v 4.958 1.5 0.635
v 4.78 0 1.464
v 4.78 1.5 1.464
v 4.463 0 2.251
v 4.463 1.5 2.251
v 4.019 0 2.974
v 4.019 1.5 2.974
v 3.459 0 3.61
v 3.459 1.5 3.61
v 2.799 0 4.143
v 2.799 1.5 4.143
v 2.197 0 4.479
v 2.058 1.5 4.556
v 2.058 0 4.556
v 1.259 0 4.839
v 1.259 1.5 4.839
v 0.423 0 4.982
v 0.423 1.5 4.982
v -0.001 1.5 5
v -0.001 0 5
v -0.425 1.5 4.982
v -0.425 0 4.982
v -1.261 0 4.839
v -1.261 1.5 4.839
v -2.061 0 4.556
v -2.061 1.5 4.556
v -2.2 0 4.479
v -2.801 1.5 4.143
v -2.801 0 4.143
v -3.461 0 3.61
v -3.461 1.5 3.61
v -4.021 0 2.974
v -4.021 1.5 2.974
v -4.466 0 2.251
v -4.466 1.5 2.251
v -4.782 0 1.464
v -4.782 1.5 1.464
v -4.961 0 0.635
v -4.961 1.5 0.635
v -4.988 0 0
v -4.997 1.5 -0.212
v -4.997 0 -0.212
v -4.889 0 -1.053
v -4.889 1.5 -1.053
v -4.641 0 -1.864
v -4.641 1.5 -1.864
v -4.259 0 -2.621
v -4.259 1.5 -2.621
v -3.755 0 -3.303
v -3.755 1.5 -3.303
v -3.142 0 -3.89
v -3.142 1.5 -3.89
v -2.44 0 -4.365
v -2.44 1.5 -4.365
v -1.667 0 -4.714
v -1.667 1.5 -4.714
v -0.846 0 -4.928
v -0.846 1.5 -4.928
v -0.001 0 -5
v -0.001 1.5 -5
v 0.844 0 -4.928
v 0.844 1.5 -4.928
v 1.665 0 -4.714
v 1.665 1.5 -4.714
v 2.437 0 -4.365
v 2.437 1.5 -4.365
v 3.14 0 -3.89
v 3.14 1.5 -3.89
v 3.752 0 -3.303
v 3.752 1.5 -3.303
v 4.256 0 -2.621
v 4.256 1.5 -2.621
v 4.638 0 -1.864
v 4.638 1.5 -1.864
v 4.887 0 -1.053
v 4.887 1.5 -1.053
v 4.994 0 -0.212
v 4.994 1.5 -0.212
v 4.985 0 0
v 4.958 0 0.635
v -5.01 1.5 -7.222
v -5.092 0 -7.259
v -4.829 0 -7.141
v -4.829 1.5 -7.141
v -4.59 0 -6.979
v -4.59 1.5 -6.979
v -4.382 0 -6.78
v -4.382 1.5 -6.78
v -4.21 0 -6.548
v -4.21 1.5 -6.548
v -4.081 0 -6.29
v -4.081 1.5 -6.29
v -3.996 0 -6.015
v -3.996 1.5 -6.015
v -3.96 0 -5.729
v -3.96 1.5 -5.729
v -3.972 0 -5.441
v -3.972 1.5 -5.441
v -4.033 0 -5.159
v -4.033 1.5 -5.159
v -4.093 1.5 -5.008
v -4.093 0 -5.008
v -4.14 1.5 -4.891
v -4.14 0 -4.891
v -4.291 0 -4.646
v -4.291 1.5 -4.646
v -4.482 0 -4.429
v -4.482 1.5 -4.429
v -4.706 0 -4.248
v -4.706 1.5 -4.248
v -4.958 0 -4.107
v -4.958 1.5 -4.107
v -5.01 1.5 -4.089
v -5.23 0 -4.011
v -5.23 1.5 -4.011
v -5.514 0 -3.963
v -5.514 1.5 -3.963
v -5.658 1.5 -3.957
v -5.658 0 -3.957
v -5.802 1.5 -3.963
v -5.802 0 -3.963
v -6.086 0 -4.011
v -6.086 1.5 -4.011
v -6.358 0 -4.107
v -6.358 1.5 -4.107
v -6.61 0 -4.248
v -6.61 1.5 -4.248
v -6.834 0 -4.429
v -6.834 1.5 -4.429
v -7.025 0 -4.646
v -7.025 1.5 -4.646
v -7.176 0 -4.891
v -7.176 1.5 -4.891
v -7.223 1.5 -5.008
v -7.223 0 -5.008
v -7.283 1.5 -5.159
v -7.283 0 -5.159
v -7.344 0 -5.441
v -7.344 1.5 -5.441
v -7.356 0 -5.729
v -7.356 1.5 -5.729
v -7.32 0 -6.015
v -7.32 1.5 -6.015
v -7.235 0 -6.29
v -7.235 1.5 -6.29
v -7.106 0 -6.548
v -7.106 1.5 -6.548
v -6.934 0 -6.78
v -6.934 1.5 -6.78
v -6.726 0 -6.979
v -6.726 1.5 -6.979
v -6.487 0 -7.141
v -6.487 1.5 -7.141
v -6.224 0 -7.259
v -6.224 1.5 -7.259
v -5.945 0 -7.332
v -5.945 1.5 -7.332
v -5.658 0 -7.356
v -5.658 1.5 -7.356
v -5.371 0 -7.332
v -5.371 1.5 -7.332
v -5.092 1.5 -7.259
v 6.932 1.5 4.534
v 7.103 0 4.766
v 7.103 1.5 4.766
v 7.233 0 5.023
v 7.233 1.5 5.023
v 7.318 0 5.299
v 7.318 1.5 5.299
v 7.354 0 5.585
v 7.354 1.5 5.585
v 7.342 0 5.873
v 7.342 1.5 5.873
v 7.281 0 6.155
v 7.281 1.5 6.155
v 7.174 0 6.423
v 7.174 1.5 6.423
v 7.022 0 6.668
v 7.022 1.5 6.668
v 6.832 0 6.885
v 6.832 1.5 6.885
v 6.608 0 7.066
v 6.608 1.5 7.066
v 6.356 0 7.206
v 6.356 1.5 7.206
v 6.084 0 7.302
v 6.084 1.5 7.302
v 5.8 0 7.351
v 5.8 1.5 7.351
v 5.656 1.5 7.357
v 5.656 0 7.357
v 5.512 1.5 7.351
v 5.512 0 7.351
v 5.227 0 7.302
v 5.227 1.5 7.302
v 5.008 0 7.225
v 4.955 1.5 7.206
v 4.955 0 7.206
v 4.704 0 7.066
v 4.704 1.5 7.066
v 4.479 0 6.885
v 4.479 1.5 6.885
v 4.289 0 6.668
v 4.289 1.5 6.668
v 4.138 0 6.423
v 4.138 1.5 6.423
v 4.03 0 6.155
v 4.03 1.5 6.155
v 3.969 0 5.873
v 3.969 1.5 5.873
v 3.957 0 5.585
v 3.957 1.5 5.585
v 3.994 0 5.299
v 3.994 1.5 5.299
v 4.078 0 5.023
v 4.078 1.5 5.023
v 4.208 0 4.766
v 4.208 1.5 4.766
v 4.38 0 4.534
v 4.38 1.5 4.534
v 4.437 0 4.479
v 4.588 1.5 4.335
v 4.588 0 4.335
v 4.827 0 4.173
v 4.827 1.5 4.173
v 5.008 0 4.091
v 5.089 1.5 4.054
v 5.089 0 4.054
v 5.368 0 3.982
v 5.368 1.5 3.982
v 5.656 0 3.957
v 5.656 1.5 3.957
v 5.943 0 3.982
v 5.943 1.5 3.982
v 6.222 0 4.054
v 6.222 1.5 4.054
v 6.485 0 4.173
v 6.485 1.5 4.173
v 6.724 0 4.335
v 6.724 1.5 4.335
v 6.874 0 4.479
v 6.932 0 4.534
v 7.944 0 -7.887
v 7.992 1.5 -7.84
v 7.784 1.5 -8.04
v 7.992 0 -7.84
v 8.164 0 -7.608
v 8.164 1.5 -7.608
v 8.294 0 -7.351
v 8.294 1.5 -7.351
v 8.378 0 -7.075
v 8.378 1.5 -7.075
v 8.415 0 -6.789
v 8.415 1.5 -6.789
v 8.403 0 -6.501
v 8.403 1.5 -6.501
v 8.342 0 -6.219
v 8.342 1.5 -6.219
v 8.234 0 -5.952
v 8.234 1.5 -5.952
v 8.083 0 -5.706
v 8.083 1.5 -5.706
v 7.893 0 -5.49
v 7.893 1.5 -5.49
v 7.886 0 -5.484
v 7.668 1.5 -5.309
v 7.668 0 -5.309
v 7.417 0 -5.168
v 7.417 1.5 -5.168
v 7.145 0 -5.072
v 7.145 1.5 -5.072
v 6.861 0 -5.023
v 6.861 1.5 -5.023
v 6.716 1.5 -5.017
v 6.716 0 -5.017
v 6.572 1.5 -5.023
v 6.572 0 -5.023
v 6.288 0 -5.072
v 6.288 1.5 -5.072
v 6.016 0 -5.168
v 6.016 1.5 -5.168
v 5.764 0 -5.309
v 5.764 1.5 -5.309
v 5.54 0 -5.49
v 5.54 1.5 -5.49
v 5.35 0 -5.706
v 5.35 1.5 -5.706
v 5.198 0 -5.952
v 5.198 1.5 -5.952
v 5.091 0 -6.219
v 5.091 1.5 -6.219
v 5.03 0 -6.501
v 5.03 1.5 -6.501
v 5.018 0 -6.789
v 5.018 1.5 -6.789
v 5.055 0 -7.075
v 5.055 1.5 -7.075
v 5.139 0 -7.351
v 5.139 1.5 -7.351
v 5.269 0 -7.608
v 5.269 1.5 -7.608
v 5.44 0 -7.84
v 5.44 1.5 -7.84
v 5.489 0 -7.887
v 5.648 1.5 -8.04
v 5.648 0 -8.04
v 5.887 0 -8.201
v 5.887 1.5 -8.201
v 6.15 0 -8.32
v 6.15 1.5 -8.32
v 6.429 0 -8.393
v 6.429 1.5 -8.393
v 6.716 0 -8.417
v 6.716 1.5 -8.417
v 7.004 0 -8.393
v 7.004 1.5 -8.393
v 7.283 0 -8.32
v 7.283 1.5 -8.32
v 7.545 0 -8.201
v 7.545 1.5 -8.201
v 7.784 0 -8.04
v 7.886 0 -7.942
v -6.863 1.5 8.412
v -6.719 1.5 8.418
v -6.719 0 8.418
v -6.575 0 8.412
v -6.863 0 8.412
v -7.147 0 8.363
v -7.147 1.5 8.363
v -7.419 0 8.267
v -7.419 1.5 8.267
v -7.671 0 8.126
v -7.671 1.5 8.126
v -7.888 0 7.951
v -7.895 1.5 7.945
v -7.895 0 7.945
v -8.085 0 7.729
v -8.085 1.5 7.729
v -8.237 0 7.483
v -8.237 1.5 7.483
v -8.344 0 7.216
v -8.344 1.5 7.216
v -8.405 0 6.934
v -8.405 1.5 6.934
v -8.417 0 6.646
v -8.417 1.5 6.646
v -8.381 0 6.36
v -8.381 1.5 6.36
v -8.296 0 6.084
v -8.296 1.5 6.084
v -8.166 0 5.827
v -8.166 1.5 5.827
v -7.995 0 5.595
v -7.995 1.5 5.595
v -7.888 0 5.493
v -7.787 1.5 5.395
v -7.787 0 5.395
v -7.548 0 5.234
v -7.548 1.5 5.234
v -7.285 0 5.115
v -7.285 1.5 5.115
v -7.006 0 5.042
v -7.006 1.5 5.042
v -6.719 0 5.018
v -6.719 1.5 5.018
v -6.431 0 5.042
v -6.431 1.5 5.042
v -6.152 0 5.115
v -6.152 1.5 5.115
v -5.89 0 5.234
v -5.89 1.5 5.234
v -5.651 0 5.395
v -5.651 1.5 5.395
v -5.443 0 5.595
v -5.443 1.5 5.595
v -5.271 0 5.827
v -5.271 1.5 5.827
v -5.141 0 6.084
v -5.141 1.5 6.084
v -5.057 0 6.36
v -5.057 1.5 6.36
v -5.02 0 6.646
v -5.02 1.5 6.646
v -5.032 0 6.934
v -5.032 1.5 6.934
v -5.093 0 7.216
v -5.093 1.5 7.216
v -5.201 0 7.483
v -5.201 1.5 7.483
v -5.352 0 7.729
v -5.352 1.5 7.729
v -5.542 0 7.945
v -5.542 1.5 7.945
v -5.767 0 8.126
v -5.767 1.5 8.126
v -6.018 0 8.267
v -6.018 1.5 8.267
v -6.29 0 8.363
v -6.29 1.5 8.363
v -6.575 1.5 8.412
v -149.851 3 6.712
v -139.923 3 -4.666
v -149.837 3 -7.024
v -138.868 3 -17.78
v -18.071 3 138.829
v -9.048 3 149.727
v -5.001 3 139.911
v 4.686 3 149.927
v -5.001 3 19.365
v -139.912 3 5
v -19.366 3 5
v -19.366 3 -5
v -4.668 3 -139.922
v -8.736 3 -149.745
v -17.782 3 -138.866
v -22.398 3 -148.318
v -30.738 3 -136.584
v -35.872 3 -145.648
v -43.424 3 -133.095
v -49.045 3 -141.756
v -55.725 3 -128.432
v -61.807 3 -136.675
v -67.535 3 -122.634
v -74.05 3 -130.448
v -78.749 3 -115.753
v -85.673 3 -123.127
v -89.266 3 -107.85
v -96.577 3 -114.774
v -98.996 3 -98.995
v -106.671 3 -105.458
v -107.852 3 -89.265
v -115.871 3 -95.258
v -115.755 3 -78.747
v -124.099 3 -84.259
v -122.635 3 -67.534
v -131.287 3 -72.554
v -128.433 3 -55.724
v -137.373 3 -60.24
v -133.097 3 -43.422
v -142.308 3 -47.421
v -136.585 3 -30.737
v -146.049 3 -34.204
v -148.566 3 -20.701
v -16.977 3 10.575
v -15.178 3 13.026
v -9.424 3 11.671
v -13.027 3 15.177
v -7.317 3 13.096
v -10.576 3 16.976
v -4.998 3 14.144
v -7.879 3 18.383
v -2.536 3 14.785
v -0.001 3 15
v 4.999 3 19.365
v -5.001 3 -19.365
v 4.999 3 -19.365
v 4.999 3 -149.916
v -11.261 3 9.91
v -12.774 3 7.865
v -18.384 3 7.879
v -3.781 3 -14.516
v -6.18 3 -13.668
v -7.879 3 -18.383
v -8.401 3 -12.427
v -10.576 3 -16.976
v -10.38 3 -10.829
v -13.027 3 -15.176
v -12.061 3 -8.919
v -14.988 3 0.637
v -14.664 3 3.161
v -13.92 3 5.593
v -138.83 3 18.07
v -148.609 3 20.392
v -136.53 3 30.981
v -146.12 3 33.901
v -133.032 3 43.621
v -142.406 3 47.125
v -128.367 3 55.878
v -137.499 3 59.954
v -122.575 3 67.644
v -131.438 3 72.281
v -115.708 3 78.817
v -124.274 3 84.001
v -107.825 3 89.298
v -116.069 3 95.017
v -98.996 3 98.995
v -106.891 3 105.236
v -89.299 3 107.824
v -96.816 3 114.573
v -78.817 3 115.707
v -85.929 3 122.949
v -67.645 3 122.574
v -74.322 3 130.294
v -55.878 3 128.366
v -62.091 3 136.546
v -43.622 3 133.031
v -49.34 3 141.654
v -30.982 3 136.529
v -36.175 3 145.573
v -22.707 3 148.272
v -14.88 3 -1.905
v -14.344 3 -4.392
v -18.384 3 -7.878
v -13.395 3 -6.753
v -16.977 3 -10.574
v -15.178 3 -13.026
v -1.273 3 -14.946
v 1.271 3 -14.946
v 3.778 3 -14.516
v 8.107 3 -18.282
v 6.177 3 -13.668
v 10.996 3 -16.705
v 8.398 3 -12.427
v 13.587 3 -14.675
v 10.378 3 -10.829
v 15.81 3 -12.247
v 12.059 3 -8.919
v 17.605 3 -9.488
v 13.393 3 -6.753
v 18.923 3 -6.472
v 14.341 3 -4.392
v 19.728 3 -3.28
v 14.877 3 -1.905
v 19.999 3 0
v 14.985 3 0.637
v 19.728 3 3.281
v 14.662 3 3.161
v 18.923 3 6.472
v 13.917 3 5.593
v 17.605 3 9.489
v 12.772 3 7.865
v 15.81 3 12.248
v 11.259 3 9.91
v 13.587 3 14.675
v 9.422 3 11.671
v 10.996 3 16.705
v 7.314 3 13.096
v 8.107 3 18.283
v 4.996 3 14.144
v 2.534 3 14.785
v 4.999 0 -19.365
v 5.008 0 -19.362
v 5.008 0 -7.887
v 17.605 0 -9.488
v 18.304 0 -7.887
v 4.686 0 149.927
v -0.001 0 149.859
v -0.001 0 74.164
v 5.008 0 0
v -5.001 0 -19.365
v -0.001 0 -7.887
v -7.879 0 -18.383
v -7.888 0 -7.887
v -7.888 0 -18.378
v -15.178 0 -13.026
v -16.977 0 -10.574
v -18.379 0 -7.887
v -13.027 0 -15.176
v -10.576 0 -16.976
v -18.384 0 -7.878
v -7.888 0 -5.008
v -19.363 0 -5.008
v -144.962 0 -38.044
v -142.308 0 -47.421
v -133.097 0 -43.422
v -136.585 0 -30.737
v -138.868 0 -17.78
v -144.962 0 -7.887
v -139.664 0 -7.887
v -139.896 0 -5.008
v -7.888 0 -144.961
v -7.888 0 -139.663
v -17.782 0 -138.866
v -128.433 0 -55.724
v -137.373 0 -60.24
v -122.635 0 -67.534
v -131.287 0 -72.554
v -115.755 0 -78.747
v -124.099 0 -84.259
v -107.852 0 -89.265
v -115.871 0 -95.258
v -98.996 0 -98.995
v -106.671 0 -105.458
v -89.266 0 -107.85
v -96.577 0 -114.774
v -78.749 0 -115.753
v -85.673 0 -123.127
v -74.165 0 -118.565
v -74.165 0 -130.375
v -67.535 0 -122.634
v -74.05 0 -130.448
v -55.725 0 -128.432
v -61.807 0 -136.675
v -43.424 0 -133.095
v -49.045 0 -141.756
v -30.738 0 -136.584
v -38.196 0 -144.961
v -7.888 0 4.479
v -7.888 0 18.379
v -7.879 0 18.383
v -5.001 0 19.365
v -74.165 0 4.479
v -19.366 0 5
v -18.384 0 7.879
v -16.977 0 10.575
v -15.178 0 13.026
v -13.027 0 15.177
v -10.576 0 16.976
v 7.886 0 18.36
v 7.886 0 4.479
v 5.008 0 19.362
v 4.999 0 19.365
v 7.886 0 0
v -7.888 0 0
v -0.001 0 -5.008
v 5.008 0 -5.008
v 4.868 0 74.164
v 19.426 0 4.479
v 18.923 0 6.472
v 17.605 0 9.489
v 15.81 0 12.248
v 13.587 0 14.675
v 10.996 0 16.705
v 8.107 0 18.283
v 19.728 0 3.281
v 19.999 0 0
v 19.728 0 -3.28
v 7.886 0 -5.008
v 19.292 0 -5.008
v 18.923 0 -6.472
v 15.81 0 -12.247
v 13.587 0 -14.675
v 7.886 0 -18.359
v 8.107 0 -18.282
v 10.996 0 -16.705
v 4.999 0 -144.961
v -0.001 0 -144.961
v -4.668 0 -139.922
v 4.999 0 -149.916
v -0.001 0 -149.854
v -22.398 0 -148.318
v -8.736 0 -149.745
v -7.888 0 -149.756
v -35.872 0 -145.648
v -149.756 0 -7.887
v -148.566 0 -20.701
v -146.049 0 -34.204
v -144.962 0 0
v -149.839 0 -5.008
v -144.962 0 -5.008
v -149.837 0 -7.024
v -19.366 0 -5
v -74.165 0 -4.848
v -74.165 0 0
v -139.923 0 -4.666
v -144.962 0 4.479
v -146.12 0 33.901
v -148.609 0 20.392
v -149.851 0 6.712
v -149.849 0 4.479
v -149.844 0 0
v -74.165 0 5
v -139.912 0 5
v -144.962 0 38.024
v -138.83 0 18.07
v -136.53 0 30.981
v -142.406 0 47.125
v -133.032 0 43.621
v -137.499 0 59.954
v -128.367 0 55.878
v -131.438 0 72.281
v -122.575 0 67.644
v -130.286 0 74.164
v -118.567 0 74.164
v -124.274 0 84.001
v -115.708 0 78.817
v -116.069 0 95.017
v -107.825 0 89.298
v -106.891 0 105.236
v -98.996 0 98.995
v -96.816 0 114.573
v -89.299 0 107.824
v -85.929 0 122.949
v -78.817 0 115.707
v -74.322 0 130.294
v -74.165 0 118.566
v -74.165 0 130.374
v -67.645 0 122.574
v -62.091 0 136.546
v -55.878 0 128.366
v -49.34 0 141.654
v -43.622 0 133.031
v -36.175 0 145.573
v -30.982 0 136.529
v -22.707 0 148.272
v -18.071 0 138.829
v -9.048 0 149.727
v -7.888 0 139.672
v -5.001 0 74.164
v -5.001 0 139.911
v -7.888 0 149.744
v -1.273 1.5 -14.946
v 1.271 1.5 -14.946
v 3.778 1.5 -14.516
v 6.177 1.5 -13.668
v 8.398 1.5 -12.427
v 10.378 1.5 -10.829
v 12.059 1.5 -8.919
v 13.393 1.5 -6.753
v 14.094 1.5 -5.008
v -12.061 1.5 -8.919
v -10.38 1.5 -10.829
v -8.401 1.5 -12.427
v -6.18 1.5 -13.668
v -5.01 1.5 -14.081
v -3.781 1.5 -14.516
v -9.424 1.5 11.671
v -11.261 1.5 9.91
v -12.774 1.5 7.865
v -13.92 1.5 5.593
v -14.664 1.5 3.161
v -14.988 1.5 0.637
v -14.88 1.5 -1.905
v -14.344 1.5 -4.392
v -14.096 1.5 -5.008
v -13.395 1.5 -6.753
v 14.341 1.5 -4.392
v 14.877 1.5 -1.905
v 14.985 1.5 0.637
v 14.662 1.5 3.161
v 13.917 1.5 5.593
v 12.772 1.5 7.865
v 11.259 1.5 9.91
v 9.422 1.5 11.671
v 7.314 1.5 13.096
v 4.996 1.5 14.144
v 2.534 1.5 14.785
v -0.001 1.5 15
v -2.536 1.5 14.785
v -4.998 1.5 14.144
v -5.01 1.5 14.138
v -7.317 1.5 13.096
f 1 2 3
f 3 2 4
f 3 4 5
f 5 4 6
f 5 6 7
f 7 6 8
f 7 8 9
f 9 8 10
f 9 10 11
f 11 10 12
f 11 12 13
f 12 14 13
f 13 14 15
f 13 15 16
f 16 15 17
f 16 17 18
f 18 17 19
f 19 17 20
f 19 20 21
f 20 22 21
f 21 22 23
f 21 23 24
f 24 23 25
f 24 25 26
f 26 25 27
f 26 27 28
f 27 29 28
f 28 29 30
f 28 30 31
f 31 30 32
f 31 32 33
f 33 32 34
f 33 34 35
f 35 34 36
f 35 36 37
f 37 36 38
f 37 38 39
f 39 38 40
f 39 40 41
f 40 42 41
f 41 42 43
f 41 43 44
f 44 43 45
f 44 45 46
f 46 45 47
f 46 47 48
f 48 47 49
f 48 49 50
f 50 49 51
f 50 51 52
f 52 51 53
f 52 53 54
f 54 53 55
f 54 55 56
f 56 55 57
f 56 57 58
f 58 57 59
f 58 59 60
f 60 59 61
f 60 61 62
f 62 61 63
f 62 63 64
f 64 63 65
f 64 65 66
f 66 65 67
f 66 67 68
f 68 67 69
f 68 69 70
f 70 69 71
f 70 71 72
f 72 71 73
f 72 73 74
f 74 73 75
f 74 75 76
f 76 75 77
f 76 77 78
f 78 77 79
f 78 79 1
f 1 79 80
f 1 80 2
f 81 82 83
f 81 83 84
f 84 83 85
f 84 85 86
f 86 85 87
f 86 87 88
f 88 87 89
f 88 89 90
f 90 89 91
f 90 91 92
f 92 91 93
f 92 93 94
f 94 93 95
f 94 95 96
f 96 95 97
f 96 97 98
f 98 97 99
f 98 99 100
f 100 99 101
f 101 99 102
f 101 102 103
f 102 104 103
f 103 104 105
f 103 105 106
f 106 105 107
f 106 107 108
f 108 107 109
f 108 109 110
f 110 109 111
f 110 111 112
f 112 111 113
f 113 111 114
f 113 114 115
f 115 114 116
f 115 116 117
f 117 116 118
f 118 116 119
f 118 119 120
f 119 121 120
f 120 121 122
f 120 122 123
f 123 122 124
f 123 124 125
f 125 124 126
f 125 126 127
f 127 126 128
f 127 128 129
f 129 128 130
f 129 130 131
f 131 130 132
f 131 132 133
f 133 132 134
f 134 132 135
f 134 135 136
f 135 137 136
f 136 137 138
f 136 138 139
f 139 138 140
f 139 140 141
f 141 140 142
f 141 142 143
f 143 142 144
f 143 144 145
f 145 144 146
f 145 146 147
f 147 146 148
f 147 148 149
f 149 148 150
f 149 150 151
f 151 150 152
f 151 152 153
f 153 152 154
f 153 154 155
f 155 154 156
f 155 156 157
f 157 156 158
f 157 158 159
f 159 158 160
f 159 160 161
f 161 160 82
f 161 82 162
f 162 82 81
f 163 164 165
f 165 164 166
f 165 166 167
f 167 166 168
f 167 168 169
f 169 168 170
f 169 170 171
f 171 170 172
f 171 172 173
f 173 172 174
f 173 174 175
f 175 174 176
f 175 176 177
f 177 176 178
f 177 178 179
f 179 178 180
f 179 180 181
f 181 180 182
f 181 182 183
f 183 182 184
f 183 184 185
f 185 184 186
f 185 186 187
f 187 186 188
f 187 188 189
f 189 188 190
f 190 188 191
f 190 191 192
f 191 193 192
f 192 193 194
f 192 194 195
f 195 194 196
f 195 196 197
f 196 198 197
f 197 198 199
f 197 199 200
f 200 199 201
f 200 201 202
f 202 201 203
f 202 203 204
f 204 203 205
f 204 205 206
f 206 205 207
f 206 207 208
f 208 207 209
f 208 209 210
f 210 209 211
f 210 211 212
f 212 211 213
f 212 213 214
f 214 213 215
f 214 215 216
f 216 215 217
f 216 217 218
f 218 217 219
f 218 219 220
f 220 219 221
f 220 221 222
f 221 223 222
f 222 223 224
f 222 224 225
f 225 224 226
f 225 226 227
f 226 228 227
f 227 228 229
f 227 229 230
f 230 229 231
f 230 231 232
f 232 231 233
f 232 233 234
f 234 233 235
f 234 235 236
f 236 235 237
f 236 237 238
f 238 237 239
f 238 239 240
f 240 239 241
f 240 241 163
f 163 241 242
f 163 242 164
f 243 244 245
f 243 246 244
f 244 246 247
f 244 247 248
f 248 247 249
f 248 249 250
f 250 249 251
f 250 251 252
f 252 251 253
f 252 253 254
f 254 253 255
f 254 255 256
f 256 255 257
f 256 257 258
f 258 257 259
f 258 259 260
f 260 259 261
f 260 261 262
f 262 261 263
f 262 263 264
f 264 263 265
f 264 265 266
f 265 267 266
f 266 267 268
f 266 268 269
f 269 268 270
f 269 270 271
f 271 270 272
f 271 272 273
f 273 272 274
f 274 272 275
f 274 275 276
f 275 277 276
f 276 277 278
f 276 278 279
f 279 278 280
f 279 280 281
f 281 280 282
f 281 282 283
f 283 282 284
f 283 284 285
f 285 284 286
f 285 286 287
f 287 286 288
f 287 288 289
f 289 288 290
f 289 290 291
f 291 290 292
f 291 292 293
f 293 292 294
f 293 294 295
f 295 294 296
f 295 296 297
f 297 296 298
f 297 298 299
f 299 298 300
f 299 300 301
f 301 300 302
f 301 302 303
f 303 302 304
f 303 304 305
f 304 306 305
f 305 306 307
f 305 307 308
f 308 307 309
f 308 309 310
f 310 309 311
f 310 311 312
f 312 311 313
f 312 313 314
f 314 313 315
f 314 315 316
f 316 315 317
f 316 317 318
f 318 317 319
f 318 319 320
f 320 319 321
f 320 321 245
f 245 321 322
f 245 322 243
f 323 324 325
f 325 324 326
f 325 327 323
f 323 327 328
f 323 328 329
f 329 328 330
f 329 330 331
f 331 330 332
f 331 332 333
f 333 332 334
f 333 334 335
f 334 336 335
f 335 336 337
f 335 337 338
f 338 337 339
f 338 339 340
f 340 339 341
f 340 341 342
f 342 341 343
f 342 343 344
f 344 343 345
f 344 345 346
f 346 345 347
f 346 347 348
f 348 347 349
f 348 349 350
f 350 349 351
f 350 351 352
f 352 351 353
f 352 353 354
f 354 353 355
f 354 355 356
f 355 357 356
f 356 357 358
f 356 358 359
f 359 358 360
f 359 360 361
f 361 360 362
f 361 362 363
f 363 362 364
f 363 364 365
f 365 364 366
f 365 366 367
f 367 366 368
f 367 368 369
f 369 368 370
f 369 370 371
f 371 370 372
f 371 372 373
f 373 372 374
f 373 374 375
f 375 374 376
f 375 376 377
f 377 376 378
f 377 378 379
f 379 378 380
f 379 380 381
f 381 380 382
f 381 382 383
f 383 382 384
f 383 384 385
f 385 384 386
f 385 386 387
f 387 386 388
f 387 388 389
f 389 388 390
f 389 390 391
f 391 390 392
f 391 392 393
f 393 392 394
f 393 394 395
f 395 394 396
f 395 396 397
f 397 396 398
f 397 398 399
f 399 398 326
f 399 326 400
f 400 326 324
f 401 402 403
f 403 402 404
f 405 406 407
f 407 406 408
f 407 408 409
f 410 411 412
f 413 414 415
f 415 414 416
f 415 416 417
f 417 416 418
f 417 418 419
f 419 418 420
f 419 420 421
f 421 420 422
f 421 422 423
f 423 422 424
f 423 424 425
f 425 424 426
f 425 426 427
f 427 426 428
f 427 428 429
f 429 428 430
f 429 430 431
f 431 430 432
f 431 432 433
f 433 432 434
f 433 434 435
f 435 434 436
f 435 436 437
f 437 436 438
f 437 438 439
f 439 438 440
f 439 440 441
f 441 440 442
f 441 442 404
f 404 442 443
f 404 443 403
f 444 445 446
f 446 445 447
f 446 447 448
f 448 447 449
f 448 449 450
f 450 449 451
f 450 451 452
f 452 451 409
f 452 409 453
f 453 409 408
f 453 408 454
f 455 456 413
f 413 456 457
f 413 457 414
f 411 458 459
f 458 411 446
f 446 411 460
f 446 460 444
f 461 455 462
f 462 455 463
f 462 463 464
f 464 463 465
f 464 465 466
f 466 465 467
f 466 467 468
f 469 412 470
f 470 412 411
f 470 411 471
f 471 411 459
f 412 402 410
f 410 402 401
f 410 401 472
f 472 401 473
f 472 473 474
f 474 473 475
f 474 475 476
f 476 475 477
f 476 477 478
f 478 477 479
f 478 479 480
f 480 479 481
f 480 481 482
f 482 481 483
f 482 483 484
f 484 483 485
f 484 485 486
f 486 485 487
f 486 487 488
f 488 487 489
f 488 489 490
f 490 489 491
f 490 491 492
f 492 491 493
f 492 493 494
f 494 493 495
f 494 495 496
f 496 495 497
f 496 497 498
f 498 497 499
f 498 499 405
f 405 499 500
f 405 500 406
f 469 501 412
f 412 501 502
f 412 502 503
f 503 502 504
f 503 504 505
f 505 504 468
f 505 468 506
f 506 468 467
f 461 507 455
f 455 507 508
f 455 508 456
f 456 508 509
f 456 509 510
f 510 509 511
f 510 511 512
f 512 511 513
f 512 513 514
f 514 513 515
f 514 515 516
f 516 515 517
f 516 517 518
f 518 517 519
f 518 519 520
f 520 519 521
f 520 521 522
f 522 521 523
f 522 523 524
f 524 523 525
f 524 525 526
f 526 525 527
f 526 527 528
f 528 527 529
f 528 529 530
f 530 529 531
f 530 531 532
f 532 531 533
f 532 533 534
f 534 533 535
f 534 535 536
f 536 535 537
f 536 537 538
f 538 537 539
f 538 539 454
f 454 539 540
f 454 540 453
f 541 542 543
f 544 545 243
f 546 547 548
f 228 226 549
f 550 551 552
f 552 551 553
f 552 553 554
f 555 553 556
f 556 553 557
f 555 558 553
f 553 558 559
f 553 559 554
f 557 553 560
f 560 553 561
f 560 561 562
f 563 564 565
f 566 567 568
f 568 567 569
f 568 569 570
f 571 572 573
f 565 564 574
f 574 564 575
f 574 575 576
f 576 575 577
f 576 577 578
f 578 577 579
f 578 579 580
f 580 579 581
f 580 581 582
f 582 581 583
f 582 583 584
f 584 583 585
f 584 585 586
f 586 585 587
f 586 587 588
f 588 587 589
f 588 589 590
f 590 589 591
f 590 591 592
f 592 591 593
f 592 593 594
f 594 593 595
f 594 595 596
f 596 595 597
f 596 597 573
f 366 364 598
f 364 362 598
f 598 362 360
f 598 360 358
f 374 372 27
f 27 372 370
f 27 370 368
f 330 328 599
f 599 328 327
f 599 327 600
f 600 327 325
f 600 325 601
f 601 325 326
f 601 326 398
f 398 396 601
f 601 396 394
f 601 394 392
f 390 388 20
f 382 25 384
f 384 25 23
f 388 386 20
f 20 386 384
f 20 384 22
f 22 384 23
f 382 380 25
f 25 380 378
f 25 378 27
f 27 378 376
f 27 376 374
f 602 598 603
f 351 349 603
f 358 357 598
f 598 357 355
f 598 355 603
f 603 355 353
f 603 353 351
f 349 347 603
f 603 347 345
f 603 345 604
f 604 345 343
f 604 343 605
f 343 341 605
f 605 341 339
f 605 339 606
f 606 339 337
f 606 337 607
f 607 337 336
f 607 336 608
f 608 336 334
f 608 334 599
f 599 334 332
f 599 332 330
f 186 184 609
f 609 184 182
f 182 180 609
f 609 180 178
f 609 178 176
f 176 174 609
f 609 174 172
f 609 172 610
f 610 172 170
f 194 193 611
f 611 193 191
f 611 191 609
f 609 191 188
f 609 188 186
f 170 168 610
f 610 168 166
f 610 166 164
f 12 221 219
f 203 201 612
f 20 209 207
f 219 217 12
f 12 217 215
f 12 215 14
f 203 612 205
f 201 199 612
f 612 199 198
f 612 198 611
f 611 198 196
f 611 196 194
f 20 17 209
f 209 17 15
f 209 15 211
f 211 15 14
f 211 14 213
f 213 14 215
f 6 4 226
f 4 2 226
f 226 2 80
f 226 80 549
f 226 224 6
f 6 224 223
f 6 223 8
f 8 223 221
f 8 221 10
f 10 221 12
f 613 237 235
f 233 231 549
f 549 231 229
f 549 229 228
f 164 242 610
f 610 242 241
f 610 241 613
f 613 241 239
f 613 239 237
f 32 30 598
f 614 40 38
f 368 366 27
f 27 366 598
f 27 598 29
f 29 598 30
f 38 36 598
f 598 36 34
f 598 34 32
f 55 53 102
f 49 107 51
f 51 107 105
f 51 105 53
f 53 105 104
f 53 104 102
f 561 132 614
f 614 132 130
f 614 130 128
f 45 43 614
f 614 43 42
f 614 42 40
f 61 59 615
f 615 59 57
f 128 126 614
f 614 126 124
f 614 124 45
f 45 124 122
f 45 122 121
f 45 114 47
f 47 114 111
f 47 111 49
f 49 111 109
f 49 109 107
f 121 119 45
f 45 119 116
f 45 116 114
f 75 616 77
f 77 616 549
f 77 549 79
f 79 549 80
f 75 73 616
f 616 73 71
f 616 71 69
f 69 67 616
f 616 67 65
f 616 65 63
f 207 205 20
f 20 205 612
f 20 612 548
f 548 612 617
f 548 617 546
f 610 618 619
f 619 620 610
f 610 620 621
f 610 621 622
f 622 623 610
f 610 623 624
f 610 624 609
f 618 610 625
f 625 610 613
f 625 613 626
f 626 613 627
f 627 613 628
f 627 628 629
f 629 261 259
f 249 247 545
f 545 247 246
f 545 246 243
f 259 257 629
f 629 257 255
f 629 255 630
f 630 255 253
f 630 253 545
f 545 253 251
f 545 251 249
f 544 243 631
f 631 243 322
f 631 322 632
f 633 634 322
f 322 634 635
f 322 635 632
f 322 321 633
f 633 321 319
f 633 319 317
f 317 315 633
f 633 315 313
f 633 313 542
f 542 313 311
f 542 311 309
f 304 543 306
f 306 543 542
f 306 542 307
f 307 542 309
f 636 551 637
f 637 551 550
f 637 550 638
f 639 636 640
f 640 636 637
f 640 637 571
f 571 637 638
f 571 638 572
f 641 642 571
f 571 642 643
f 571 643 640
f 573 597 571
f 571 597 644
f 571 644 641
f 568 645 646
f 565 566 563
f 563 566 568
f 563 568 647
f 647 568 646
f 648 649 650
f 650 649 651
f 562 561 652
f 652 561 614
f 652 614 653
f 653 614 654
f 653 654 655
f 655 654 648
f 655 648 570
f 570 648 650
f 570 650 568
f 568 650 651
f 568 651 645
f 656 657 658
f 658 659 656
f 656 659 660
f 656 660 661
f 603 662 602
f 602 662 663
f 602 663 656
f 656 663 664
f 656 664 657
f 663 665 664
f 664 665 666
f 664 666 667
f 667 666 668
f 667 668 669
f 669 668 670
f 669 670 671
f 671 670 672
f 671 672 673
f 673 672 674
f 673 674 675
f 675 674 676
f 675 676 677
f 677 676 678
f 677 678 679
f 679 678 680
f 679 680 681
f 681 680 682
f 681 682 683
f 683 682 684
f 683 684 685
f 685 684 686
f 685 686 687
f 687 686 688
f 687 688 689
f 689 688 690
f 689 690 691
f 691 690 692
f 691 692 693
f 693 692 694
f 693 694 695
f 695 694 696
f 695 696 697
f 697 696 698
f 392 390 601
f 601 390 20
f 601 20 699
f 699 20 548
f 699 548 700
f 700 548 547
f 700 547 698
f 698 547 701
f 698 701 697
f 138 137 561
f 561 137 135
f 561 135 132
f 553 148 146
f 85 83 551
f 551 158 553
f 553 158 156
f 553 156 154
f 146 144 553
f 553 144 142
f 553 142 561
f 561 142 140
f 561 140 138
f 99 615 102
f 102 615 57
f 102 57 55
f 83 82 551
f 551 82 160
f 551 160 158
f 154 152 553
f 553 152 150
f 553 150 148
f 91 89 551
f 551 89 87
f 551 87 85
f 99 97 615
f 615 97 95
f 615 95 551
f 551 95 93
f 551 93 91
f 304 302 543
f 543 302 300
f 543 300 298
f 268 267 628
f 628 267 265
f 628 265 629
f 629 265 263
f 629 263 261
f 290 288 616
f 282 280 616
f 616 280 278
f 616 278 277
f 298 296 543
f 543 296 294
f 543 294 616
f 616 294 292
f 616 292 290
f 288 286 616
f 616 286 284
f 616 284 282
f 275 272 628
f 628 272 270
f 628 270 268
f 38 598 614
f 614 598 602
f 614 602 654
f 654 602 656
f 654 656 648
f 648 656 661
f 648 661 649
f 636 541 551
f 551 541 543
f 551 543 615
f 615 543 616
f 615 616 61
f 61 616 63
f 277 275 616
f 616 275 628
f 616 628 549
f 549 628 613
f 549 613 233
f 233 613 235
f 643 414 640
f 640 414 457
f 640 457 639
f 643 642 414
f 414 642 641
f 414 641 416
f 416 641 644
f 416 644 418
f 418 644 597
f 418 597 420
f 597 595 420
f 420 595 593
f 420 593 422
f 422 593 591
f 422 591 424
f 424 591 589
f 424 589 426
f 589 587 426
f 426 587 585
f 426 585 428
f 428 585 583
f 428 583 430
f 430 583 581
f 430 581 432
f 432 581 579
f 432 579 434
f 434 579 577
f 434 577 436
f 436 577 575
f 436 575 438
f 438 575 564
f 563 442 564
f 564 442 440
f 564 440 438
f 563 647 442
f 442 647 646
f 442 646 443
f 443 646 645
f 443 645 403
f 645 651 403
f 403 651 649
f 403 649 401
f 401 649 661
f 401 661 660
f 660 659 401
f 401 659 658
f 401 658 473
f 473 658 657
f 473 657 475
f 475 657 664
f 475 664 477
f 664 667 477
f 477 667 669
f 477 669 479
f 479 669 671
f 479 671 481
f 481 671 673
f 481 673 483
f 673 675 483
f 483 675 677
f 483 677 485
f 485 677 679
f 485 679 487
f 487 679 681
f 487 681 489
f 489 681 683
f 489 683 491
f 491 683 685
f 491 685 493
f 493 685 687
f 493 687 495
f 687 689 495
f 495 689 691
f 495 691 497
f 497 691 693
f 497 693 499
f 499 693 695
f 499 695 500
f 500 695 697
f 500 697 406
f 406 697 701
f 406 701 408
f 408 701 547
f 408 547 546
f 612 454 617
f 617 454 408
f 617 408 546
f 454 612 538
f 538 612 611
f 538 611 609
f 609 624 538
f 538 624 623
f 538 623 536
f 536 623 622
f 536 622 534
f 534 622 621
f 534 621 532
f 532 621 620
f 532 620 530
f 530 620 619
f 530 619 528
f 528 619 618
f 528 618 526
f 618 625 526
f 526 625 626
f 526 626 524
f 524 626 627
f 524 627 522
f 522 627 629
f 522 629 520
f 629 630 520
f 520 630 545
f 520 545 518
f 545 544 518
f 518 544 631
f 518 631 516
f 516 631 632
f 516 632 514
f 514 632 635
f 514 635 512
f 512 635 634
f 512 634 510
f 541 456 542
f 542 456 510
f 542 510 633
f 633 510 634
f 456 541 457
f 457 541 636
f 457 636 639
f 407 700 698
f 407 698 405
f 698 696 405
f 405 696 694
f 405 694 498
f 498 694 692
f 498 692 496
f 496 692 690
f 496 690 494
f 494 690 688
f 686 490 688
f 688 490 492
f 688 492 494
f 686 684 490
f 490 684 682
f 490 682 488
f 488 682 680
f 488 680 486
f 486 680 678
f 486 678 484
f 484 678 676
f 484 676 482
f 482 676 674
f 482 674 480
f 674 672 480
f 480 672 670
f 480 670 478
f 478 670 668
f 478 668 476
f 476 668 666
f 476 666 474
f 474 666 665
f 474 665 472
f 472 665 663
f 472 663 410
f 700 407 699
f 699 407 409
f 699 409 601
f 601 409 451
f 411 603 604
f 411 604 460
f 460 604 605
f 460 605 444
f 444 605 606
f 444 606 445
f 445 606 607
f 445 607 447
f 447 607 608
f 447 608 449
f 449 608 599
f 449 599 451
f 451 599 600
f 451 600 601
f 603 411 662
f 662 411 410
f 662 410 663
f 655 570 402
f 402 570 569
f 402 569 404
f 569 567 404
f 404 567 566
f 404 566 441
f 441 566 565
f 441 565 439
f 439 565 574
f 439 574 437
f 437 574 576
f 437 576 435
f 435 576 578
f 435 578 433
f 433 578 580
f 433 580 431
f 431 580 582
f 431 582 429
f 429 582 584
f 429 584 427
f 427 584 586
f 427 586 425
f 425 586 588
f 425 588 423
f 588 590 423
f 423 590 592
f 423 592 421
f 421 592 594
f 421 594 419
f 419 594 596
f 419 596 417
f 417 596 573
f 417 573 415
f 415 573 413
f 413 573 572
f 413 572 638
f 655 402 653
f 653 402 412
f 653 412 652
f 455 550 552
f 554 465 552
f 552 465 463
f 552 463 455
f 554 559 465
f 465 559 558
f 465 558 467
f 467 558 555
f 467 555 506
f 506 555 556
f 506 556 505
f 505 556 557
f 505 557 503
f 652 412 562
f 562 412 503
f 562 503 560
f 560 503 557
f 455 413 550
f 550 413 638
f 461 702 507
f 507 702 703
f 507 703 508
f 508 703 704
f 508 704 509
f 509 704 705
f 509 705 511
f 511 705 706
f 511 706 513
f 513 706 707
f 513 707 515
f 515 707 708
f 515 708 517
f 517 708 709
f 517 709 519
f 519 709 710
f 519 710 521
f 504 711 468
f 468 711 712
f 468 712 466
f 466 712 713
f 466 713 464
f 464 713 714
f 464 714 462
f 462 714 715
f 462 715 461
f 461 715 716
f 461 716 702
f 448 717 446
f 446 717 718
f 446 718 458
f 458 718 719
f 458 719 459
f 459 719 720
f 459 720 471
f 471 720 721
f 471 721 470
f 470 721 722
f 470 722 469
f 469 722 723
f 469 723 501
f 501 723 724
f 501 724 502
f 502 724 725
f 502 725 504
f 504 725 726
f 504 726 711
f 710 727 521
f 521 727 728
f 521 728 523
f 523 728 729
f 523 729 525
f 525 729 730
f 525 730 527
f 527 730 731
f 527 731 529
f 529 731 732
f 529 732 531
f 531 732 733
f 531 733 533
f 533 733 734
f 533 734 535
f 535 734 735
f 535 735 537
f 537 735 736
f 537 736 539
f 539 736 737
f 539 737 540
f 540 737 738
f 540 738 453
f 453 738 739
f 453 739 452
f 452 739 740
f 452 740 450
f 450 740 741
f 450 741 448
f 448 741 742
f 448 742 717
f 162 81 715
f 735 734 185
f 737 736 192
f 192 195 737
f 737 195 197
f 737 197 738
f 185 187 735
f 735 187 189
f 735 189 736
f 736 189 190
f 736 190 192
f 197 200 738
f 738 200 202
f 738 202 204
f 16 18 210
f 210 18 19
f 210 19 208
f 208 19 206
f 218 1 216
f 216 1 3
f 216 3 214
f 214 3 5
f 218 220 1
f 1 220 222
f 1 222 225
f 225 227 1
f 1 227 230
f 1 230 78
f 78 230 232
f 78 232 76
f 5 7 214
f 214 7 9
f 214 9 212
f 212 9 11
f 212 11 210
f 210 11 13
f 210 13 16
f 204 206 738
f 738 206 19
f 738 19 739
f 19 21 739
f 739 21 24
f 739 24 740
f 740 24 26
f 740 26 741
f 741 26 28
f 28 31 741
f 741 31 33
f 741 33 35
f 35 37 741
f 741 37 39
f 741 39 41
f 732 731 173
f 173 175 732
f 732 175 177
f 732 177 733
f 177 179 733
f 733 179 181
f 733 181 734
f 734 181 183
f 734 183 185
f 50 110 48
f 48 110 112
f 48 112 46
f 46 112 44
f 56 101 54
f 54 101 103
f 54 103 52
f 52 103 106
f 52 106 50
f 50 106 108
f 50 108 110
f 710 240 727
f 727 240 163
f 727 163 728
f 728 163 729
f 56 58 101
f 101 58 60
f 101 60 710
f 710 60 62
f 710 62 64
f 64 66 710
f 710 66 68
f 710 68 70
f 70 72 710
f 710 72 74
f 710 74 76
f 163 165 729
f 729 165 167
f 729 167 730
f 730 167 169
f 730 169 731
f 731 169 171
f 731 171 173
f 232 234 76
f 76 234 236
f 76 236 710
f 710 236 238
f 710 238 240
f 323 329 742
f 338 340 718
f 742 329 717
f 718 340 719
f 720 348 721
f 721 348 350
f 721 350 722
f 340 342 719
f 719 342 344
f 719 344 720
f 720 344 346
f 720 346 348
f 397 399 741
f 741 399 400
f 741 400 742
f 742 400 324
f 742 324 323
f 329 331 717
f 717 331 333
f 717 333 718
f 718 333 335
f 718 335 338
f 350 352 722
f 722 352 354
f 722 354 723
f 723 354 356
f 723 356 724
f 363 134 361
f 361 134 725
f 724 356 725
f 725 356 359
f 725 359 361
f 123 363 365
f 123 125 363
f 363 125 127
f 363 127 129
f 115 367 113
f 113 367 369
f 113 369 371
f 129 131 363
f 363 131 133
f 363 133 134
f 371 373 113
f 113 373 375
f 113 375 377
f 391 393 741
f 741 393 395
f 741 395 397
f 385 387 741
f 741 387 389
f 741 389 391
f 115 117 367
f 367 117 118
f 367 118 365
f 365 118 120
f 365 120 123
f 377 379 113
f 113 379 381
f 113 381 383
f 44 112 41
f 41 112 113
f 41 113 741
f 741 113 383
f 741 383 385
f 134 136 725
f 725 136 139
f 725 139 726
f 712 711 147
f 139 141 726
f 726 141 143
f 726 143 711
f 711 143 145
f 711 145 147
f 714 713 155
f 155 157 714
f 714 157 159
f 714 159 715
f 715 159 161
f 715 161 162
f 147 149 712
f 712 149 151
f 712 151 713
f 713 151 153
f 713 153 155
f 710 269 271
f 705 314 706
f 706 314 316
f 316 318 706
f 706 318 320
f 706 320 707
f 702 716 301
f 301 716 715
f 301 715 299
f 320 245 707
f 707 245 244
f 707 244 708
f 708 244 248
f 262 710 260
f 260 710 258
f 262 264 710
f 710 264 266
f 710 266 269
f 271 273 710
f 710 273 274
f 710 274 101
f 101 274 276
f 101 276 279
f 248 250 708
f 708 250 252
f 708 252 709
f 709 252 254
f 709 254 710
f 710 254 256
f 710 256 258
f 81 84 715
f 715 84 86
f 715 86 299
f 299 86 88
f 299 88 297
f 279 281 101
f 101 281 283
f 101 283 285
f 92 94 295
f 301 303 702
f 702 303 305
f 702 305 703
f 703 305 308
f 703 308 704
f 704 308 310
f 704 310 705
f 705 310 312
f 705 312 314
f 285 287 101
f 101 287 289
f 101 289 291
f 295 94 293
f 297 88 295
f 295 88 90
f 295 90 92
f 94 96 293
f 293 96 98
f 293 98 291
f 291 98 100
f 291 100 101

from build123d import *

# Parameters (mm, degrees)
SKETCH1_R           = 5
SKETCH1_R_2         = 1.7
BOSS_EXTRUDE1_DEPTH = 3
SKETCH2_R           = 15
CUT_EXTRUDE1_DEPTH  = 1.5


with BuildPart() as part:
    # Sketch1 → Boss-Extrude1 (new body)
    with BuildSketch(Plane(origin=(0, 0, 0), x_dir=(1, 0, 0), z_dir=(0, 1, 0))):
        with BuildLine():
            Line((5, -19.364916731), (4.6875, -149.926739922))
            ThreePointArc((4.6875, -149.926739922), (-149.999918535, 0.156331529), (5, 149.916643506))
            Line((5, 149.916643506), (5, 19.364916731))
            ThreePointArc((5, 19.364916731), (20, 0), (5, -19.364916731))
        make_face()
        Circle(SKETCH1_R, mode=Mode.SUBTRACT)
        with Locations((-5.656854249, 5.656854249)):
            Circle(SKETCH1_R_2, mode=Mode.SUBTRACT)
        with Locations((5.656854249, -5.656854249)):
            Circle(SKETCH1_R_2, mode=Mode.SUBTRACT)
        with Locations((6.717514421, 6.717514421)):
            Circle(SKETCH1_R_2, mode=Mode.SUBTRACT)
        with Locations((-6.717514421, -6.717514421)):
            Circle(SKETCH1_R_2, mode=Mode.SUBTRACT)
        with BuildLine():
            Line((-5, -19.364916731), (-5, -139.910685796))
            ThreePointArc((-5, -139.910685796), (-98.994949366, -98.994949366), (-139.910685796, -5))
            Line((-139.910685796, -5), (-19.364916731, -5))
            ThreePointArc((-19.364916731, -5), (-14.142135624, -14.142135624), (-5, -19.364916731))
        make_face(mode=Mode.SUBTRACT)
        with BuildLine():
            Line((-5, 19.364916731), (-4.666666667, 139.922200605))
            ThreePointArc((-4.666666667, 139.922200605), (-98.994949366, 98.994949366), (-139.922200605, 4.666666667))
            Line((-139.922200605, 4.666666667), (-19.364916731, 5))
            ThreePointArc((-19.364916731, 5), (-14.142135624, 14.142135624), (-5, 19.364916731))
        make_face(mode=Mode.SUBTRACT)
    extrude(amount=BOSS_EXTRUDE1_DEPTH)

    # Sketch2 → Cut-Extrude1 (cut)
    with BuildSketch(Plane(origin=(0, 3, 0), x_dir=(1, 0, 0), z_dir=(0, 1, 0))):
        Circle(SKETCH2_R)
    extrude(amount=-CUT_EXTRUDE1_DEPTH, mode=Mode.SUBTRACT)


solid = part.part
